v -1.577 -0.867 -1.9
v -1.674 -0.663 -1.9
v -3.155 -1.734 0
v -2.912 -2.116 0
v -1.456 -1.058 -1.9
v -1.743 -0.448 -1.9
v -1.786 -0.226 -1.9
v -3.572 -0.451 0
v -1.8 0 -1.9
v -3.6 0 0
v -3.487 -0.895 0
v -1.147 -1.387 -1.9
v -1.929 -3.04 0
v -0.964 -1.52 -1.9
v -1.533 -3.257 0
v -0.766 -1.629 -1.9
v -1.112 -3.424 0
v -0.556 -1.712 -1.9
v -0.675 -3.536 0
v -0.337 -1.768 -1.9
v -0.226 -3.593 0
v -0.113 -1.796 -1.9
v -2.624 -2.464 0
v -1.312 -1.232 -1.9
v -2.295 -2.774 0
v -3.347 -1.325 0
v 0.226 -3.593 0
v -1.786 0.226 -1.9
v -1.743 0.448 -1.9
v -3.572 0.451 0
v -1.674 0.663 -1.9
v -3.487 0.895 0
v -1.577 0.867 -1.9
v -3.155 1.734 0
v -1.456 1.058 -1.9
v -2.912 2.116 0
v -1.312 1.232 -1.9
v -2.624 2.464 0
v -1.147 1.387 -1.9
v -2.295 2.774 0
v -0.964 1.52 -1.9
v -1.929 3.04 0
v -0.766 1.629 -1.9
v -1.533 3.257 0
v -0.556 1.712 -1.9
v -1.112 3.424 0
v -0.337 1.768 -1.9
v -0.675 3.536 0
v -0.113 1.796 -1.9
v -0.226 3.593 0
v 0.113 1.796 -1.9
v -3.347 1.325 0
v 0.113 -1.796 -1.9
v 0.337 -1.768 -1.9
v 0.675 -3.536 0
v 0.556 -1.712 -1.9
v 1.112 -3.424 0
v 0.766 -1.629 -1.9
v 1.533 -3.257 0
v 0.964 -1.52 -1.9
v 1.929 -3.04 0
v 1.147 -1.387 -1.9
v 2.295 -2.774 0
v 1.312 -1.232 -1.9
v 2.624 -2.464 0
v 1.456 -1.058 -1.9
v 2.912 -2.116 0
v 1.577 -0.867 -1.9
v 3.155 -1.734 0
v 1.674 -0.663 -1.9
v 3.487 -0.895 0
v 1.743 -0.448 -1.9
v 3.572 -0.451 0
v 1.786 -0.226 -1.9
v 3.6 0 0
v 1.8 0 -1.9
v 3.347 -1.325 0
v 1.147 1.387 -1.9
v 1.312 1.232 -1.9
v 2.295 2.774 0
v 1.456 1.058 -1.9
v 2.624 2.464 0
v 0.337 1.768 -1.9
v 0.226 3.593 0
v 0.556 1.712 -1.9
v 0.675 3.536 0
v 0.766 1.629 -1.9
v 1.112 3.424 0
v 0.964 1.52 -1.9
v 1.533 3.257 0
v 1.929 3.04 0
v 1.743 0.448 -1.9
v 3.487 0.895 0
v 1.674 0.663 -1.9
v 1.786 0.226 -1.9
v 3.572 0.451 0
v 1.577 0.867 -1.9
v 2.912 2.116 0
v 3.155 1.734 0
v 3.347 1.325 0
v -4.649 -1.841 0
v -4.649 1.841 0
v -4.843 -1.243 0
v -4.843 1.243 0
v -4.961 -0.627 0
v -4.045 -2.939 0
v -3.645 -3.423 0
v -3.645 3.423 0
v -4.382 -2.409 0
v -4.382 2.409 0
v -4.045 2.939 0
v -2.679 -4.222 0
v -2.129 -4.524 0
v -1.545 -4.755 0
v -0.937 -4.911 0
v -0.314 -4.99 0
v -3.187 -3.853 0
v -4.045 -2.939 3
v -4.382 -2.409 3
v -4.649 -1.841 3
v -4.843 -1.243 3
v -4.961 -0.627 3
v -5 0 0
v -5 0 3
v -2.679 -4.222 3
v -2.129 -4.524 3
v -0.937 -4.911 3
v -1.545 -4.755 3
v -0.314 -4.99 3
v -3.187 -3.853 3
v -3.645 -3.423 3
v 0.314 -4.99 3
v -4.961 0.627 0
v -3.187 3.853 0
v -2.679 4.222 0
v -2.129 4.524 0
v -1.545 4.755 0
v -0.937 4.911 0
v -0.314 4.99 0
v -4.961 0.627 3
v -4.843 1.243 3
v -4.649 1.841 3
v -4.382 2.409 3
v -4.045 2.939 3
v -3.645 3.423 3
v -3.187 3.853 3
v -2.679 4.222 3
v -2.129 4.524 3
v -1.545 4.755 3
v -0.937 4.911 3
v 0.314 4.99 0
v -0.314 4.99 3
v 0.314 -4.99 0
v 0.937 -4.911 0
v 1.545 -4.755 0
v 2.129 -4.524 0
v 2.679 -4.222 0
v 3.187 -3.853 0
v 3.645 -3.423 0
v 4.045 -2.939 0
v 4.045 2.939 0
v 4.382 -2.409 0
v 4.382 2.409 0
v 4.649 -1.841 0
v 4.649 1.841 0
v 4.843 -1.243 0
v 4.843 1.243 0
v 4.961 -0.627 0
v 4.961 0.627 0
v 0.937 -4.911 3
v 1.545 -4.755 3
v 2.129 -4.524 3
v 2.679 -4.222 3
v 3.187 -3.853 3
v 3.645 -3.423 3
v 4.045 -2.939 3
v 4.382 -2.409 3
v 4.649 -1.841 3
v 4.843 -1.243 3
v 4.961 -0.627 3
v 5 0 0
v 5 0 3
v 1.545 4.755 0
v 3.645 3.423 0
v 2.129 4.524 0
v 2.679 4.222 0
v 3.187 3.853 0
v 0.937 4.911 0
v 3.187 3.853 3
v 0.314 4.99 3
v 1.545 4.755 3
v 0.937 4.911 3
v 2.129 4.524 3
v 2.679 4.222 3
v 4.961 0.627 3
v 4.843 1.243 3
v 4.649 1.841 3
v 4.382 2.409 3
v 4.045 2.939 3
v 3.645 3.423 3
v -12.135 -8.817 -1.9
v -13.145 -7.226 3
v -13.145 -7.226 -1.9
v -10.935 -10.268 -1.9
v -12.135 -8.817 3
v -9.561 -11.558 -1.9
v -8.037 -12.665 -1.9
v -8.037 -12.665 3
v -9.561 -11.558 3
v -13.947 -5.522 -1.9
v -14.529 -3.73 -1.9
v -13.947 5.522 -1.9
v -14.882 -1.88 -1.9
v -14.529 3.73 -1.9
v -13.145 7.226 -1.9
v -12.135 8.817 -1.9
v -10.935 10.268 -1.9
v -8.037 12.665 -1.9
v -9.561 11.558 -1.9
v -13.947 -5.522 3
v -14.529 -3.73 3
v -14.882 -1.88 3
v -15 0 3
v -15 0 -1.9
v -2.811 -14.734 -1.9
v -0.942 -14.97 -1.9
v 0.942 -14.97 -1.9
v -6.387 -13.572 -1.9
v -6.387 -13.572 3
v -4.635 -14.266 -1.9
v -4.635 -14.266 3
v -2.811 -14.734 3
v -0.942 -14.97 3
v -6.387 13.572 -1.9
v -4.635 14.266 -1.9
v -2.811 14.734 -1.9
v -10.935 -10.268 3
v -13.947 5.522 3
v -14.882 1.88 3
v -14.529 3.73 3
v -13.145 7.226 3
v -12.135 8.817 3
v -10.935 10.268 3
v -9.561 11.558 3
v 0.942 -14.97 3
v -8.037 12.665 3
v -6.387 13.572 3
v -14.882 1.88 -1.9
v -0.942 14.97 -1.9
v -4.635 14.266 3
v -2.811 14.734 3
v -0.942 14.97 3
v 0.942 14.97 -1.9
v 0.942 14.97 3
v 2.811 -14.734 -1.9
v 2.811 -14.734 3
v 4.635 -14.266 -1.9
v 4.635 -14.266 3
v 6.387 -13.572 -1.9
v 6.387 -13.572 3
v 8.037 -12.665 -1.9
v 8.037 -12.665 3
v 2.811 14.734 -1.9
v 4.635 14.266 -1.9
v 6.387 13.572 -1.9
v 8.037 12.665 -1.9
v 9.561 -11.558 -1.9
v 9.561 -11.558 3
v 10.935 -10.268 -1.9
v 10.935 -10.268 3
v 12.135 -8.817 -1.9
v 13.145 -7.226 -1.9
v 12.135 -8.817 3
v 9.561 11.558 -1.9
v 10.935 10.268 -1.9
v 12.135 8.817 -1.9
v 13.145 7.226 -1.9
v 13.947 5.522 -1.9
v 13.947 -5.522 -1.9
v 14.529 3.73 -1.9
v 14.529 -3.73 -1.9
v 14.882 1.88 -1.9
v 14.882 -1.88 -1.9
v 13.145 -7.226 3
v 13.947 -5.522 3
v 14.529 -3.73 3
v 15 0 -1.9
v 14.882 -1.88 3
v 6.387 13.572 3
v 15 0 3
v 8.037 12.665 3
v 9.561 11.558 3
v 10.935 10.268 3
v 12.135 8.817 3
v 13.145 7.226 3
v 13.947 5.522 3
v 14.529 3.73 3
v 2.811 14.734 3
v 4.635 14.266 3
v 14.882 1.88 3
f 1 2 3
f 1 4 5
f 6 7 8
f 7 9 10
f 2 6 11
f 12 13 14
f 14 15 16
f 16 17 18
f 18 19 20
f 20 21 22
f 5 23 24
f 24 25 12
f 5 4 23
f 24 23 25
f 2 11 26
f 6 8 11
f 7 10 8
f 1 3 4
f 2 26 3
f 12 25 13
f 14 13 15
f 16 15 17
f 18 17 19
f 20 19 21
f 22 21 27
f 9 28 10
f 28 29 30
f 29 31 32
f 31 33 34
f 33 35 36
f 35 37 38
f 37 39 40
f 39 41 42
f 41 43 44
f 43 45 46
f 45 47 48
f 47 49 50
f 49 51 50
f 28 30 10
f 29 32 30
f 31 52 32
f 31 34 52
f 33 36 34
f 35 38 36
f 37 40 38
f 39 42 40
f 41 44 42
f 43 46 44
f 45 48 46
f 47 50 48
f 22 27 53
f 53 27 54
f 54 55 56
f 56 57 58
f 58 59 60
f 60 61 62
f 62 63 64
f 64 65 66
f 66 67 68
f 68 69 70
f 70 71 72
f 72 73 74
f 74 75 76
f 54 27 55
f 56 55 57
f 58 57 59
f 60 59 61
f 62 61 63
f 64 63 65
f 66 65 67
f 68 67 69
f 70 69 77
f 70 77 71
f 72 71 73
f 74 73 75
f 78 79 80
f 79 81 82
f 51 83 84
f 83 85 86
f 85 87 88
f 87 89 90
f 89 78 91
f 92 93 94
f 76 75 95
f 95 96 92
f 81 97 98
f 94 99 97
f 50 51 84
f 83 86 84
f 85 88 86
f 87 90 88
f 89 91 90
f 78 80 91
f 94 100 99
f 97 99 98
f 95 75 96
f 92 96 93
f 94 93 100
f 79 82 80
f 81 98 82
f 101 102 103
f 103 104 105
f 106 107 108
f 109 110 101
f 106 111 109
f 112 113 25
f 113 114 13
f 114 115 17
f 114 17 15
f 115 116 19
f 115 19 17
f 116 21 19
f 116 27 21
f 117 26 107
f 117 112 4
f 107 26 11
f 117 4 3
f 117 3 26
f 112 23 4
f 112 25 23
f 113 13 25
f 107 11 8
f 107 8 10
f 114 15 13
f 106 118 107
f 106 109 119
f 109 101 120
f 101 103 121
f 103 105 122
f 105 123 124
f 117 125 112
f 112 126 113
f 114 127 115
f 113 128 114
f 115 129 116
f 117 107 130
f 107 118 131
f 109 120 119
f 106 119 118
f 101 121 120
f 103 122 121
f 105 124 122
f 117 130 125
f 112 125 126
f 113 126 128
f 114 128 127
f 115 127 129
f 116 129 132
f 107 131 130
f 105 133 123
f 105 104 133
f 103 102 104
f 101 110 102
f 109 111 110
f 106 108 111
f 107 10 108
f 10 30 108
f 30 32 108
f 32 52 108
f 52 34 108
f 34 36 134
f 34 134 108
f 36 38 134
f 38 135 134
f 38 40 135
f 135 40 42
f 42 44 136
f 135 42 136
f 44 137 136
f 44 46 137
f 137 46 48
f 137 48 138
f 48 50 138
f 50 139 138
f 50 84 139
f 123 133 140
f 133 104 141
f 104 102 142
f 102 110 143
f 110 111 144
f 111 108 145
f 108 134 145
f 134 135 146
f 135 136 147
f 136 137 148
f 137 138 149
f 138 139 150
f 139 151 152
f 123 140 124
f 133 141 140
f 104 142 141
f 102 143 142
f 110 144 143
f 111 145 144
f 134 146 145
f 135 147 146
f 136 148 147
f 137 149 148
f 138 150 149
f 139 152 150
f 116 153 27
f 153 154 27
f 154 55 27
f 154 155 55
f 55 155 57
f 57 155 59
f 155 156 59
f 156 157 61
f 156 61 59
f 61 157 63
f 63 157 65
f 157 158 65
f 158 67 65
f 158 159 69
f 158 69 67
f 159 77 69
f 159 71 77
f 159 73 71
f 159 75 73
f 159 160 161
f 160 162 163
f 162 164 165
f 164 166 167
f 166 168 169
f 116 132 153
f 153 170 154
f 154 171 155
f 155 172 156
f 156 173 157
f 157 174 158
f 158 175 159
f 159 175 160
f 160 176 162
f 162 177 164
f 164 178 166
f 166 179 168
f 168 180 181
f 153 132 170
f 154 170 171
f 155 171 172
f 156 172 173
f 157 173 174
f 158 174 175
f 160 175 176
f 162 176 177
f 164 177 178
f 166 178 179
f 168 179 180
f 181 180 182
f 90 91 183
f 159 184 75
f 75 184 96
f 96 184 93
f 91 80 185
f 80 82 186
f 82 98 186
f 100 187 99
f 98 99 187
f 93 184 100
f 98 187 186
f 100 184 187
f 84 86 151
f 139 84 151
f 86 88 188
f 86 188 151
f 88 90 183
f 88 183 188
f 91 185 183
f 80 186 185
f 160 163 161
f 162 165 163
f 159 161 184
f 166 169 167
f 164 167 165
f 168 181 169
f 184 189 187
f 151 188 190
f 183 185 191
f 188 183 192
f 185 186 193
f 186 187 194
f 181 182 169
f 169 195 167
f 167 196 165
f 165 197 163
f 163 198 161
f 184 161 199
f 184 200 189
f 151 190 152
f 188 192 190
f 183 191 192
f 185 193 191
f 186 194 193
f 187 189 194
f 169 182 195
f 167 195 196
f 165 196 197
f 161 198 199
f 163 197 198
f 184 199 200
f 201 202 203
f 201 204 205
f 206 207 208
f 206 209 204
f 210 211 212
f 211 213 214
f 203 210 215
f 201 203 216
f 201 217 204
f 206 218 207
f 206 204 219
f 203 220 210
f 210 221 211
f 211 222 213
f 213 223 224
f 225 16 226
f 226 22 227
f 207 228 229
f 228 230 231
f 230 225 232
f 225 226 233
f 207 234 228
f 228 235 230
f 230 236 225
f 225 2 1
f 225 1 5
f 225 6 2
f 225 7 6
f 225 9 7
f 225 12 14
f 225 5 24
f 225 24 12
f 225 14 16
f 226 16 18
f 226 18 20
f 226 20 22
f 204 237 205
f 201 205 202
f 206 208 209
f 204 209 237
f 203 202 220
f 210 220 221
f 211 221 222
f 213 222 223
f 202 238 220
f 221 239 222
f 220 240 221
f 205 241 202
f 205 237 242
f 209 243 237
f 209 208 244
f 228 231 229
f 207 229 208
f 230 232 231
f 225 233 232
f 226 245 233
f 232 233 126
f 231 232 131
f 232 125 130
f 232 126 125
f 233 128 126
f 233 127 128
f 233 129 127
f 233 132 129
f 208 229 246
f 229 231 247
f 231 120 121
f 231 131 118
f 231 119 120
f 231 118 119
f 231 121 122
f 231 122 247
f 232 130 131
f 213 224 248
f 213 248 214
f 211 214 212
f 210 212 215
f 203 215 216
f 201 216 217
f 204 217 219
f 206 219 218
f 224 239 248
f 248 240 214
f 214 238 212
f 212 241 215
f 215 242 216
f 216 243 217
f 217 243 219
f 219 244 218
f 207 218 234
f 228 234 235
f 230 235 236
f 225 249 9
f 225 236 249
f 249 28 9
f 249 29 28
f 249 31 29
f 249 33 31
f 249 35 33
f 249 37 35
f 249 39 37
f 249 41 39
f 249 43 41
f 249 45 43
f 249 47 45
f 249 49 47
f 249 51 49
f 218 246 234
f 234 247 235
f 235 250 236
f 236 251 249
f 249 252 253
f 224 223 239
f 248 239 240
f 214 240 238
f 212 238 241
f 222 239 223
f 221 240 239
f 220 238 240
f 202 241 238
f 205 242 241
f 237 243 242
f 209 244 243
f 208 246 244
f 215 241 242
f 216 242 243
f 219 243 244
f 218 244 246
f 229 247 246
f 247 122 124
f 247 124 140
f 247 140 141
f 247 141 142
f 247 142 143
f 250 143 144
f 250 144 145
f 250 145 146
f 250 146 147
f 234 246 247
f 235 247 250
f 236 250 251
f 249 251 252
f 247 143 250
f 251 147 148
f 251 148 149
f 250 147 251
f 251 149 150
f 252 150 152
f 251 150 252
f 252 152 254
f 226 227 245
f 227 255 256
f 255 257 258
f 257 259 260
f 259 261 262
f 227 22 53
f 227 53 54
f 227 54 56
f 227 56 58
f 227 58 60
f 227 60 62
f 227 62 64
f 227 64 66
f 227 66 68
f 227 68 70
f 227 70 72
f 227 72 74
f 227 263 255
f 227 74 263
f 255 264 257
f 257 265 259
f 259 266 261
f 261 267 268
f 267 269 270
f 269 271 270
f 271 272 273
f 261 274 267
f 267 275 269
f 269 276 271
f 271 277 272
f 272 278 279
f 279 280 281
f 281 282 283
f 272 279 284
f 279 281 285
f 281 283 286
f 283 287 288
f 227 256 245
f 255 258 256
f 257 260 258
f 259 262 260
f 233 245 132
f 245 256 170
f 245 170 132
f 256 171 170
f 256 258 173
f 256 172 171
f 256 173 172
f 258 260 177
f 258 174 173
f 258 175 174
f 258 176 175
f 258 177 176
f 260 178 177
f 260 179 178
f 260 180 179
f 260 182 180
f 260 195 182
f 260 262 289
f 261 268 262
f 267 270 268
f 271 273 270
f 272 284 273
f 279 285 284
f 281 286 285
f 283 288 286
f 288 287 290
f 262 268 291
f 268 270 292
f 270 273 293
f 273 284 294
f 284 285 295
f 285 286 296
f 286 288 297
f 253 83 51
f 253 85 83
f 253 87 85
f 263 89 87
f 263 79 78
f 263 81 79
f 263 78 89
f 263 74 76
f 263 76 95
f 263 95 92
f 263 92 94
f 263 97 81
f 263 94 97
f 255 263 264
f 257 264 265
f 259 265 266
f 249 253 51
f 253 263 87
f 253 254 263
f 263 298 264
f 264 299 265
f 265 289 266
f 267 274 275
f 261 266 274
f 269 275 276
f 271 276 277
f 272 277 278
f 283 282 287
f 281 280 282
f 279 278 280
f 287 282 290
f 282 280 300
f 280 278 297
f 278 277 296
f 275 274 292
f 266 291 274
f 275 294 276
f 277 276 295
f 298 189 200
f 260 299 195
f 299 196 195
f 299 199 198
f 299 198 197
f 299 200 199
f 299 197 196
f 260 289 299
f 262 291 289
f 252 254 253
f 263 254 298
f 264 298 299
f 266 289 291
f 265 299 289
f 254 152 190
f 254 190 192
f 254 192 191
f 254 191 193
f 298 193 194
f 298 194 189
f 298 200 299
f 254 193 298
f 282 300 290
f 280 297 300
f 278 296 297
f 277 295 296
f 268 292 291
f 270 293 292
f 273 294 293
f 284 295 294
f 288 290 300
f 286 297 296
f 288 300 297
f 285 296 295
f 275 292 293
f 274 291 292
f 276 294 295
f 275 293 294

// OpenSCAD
$fn = 50;


difference() {
	union() {
		translate(v = [0, 0, -1.9000000000]) {
			cylinder(h = 4.9000000000, r = 15.0000000000);
		}
	}
	union() {
		translate(v = [0, 0, 0]) {
			rotate(a = [0, 0, 0]) {
				difference() {
					union() {
						translate(v = [0, 0, -4.9000000000]) {
							cylinder(h = 4.9000000000, r = 1.5000000000);
						}
						translate(v = [0, 0, -1.9000000000]) {
							cylinder(h = 1.9000000000, r1 = 1.8000000000, r2 = 3.6000000000);
						}
						translate(v = [0, 0, -4.9000000000]) {
							cylinder(h = 4.9000000000, r = 1.8000000000);
						}
						translate(v = [0, 0, -4.9000000000]) {
							cylinder(h = 4.9000000000, r = 1.5000000000);
						}
					}
					union();
				}
			}
		}
		#cylinder(h = 3, r = 5.0000000000);
	}
}
